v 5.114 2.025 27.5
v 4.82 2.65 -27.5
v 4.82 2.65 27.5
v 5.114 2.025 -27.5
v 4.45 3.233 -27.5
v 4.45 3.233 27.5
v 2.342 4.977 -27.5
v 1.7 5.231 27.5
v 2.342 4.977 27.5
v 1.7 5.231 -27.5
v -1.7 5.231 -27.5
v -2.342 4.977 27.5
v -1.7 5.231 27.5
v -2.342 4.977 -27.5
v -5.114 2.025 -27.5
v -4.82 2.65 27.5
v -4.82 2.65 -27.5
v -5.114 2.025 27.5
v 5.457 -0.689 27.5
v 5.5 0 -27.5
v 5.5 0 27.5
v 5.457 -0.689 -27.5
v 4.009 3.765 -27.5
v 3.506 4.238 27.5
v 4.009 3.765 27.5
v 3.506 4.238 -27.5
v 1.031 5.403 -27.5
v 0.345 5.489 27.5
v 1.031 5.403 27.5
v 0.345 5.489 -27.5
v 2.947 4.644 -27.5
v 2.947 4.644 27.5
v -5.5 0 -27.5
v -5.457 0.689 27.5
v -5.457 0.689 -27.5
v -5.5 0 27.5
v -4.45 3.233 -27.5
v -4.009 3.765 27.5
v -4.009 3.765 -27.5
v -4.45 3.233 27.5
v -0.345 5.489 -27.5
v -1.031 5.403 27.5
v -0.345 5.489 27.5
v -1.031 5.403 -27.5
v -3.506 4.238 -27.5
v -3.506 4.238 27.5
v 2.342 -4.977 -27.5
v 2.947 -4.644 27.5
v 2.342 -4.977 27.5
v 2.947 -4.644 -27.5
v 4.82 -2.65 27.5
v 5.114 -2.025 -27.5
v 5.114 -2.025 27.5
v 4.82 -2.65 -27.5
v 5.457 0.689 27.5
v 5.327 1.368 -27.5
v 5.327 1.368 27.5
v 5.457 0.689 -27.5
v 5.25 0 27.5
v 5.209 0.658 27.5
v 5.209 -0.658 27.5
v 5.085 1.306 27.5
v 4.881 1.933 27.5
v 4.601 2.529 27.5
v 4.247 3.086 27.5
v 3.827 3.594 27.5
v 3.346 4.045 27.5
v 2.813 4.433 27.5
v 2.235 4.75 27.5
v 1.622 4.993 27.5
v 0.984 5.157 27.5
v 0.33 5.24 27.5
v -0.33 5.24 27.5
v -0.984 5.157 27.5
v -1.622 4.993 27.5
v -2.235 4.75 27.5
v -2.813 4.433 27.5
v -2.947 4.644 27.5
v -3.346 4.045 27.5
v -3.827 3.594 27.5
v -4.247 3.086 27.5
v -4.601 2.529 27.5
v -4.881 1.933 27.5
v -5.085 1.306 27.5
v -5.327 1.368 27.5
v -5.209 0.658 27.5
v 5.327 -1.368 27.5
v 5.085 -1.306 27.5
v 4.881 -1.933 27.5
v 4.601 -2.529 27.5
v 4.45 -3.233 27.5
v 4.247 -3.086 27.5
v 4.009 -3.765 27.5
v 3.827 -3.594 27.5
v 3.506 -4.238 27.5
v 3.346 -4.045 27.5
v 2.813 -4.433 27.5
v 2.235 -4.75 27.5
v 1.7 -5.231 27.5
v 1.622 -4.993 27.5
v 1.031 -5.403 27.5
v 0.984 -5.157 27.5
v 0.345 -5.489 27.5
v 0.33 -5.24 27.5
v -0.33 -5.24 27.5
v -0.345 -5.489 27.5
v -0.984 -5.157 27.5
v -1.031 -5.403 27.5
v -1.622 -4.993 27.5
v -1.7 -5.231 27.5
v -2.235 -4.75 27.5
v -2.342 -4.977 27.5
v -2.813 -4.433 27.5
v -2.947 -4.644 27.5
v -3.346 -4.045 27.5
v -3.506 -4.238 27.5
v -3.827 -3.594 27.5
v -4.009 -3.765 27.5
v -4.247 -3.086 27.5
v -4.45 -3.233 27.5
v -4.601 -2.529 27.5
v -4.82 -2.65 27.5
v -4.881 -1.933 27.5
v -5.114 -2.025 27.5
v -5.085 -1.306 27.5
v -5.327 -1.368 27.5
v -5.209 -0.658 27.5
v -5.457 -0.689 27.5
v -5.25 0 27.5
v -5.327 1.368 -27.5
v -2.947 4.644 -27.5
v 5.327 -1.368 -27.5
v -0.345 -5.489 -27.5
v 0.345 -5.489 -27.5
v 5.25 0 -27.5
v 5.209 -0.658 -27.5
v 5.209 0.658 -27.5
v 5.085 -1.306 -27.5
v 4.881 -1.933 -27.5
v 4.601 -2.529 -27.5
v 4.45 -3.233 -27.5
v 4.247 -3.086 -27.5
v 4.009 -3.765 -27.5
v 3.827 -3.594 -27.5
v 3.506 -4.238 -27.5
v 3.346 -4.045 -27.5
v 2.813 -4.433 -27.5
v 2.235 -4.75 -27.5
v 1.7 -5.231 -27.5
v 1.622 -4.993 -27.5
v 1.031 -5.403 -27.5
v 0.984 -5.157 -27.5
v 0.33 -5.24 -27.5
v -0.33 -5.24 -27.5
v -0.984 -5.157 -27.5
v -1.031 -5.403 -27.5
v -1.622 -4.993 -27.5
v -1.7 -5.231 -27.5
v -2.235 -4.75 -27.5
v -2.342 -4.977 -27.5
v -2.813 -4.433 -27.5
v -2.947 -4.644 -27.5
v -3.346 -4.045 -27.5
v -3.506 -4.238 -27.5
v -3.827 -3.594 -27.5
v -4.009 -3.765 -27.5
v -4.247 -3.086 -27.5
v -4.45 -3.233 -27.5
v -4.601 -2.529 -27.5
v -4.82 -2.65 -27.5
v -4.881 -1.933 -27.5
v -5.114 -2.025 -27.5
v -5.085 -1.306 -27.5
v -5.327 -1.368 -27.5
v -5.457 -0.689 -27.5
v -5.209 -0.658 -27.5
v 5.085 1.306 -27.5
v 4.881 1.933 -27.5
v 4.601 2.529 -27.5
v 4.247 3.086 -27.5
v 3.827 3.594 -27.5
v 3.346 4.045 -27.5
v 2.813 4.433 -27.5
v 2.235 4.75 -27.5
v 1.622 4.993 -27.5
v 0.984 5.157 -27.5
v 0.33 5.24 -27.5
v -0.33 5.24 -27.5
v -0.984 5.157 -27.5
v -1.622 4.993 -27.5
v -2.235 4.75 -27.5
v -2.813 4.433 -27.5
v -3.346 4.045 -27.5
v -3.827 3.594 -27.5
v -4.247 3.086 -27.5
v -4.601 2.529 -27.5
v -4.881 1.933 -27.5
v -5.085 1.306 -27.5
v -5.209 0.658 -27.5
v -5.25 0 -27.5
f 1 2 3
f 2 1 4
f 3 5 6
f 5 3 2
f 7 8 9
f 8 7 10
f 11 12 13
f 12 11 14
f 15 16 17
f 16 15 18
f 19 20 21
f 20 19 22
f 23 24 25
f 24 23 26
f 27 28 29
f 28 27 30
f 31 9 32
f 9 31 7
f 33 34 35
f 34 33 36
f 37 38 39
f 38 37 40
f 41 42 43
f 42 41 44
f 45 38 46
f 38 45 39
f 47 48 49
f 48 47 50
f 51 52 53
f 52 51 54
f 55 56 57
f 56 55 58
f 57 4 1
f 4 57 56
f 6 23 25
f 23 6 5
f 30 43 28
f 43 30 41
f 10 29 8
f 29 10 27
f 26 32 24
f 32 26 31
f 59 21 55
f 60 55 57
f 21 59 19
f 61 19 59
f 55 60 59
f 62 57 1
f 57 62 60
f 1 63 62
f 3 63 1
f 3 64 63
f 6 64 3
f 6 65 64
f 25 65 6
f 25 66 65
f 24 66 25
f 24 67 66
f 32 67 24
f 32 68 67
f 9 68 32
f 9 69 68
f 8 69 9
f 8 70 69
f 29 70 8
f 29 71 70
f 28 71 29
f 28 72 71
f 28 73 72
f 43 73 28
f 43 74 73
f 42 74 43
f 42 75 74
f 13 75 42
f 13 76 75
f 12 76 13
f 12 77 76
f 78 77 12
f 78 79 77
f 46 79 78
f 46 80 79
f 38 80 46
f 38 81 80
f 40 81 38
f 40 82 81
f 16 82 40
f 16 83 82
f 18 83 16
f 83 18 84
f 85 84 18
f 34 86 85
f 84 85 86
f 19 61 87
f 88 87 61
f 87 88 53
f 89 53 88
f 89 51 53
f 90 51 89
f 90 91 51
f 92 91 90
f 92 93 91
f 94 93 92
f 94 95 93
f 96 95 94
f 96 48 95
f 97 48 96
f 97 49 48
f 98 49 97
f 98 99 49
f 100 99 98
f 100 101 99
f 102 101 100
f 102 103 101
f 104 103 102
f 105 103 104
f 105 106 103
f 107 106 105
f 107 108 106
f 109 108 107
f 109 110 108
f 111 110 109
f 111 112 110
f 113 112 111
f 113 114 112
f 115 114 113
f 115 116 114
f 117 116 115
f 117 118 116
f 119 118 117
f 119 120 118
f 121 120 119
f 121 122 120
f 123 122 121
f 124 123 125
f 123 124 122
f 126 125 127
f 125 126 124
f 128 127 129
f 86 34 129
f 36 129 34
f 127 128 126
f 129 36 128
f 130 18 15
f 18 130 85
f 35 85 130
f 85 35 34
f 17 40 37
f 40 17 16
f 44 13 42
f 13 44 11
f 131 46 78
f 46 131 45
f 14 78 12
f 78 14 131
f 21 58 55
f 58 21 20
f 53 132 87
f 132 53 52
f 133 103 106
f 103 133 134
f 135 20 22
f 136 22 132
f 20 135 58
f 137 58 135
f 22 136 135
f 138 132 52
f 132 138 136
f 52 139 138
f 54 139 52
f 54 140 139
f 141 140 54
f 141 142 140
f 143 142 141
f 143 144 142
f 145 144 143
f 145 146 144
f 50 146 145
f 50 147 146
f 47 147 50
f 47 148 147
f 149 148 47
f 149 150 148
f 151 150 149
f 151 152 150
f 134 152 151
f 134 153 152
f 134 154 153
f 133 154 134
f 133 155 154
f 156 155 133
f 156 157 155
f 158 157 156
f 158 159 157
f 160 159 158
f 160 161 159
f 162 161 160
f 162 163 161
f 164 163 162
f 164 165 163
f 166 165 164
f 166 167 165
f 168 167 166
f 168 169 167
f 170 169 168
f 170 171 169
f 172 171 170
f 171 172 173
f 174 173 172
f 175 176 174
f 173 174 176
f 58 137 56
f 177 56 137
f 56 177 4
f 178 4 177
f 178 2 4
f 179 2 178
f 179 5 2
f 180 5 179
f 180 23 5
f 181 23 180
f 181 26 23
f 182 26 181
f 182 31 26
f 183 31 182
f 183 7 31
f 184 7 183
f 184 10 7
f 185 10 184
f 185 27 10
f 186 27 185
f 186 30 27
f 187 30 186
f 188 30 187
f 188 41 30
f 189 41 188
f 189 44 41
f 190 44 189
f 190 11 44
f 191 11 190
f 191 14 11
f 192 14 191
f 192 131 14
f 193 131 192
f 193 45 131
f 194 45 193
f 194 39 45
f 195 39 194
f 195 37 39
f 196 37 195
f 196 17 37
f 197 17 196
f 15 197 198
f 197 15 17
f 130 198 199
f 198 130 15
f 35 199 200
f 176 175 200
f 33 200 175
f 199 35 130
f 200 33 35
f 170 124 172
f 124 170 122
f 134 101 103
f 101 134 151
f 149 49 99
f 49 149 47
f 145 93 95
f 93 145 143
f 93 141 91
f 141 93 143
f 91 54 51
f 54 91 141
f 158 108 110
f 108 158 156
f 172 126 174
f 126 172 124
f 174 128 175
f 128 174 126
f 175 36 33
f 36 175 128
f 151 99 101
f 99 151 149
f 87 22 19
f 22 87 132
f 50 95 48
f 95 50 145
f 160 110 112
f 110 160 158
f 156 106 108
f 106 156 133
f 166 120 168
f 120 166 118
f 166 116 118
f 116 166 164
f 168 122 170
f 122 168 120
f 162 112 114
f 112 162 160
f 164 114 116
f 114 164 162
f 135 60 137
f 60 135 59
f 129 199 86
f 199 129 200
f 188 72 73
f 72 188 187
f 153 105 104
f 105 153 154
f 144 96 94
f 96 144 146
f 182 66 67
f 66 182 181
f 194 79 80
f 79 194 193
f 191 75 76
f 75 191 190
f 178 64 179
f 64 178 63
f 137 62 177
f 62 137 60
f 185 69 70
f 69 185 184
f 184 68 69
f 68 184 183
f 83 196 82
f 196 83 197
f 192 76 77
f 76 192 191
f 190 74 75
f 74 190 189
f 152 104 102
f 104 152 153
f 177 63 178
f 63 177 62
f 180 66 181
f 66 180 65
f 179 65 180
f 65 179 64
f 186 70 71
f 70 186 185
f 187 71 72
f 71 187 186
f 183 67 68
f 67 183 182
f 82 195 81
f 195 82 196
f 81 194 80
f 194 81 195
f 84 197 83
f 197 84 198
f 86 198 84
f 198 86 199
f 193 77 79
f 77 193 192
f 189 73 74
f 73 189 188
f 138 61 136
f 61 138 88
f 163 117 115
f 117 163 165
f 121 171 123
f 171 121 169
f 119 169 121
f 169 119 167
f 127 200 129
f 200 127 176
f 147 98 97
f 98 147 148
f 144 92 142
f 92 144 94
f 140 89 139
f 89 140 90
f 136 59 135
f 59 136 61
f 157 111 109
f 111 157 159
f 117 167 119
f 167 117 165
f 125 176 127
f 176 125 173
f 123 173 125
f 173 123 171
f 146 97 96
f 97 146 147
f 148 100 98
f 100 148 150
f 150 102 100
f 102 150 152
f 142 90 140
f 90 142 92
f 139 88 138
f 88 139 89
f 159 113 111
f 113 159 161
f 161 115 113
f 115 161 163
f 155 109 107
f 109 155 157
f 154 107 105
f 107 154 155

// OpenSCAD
$fn = 50;


difference() {
	union() {
		translate(v = [0, 0, -27.5000000000]) {
			cylinder(h = 55, r = 5.5000000000);
		}
	}
	union() {
		translate(v = [0, 0, -100.0000000000]) {
			cylinder(h = 200, r = 5.2500000000);
		}
	}
}
